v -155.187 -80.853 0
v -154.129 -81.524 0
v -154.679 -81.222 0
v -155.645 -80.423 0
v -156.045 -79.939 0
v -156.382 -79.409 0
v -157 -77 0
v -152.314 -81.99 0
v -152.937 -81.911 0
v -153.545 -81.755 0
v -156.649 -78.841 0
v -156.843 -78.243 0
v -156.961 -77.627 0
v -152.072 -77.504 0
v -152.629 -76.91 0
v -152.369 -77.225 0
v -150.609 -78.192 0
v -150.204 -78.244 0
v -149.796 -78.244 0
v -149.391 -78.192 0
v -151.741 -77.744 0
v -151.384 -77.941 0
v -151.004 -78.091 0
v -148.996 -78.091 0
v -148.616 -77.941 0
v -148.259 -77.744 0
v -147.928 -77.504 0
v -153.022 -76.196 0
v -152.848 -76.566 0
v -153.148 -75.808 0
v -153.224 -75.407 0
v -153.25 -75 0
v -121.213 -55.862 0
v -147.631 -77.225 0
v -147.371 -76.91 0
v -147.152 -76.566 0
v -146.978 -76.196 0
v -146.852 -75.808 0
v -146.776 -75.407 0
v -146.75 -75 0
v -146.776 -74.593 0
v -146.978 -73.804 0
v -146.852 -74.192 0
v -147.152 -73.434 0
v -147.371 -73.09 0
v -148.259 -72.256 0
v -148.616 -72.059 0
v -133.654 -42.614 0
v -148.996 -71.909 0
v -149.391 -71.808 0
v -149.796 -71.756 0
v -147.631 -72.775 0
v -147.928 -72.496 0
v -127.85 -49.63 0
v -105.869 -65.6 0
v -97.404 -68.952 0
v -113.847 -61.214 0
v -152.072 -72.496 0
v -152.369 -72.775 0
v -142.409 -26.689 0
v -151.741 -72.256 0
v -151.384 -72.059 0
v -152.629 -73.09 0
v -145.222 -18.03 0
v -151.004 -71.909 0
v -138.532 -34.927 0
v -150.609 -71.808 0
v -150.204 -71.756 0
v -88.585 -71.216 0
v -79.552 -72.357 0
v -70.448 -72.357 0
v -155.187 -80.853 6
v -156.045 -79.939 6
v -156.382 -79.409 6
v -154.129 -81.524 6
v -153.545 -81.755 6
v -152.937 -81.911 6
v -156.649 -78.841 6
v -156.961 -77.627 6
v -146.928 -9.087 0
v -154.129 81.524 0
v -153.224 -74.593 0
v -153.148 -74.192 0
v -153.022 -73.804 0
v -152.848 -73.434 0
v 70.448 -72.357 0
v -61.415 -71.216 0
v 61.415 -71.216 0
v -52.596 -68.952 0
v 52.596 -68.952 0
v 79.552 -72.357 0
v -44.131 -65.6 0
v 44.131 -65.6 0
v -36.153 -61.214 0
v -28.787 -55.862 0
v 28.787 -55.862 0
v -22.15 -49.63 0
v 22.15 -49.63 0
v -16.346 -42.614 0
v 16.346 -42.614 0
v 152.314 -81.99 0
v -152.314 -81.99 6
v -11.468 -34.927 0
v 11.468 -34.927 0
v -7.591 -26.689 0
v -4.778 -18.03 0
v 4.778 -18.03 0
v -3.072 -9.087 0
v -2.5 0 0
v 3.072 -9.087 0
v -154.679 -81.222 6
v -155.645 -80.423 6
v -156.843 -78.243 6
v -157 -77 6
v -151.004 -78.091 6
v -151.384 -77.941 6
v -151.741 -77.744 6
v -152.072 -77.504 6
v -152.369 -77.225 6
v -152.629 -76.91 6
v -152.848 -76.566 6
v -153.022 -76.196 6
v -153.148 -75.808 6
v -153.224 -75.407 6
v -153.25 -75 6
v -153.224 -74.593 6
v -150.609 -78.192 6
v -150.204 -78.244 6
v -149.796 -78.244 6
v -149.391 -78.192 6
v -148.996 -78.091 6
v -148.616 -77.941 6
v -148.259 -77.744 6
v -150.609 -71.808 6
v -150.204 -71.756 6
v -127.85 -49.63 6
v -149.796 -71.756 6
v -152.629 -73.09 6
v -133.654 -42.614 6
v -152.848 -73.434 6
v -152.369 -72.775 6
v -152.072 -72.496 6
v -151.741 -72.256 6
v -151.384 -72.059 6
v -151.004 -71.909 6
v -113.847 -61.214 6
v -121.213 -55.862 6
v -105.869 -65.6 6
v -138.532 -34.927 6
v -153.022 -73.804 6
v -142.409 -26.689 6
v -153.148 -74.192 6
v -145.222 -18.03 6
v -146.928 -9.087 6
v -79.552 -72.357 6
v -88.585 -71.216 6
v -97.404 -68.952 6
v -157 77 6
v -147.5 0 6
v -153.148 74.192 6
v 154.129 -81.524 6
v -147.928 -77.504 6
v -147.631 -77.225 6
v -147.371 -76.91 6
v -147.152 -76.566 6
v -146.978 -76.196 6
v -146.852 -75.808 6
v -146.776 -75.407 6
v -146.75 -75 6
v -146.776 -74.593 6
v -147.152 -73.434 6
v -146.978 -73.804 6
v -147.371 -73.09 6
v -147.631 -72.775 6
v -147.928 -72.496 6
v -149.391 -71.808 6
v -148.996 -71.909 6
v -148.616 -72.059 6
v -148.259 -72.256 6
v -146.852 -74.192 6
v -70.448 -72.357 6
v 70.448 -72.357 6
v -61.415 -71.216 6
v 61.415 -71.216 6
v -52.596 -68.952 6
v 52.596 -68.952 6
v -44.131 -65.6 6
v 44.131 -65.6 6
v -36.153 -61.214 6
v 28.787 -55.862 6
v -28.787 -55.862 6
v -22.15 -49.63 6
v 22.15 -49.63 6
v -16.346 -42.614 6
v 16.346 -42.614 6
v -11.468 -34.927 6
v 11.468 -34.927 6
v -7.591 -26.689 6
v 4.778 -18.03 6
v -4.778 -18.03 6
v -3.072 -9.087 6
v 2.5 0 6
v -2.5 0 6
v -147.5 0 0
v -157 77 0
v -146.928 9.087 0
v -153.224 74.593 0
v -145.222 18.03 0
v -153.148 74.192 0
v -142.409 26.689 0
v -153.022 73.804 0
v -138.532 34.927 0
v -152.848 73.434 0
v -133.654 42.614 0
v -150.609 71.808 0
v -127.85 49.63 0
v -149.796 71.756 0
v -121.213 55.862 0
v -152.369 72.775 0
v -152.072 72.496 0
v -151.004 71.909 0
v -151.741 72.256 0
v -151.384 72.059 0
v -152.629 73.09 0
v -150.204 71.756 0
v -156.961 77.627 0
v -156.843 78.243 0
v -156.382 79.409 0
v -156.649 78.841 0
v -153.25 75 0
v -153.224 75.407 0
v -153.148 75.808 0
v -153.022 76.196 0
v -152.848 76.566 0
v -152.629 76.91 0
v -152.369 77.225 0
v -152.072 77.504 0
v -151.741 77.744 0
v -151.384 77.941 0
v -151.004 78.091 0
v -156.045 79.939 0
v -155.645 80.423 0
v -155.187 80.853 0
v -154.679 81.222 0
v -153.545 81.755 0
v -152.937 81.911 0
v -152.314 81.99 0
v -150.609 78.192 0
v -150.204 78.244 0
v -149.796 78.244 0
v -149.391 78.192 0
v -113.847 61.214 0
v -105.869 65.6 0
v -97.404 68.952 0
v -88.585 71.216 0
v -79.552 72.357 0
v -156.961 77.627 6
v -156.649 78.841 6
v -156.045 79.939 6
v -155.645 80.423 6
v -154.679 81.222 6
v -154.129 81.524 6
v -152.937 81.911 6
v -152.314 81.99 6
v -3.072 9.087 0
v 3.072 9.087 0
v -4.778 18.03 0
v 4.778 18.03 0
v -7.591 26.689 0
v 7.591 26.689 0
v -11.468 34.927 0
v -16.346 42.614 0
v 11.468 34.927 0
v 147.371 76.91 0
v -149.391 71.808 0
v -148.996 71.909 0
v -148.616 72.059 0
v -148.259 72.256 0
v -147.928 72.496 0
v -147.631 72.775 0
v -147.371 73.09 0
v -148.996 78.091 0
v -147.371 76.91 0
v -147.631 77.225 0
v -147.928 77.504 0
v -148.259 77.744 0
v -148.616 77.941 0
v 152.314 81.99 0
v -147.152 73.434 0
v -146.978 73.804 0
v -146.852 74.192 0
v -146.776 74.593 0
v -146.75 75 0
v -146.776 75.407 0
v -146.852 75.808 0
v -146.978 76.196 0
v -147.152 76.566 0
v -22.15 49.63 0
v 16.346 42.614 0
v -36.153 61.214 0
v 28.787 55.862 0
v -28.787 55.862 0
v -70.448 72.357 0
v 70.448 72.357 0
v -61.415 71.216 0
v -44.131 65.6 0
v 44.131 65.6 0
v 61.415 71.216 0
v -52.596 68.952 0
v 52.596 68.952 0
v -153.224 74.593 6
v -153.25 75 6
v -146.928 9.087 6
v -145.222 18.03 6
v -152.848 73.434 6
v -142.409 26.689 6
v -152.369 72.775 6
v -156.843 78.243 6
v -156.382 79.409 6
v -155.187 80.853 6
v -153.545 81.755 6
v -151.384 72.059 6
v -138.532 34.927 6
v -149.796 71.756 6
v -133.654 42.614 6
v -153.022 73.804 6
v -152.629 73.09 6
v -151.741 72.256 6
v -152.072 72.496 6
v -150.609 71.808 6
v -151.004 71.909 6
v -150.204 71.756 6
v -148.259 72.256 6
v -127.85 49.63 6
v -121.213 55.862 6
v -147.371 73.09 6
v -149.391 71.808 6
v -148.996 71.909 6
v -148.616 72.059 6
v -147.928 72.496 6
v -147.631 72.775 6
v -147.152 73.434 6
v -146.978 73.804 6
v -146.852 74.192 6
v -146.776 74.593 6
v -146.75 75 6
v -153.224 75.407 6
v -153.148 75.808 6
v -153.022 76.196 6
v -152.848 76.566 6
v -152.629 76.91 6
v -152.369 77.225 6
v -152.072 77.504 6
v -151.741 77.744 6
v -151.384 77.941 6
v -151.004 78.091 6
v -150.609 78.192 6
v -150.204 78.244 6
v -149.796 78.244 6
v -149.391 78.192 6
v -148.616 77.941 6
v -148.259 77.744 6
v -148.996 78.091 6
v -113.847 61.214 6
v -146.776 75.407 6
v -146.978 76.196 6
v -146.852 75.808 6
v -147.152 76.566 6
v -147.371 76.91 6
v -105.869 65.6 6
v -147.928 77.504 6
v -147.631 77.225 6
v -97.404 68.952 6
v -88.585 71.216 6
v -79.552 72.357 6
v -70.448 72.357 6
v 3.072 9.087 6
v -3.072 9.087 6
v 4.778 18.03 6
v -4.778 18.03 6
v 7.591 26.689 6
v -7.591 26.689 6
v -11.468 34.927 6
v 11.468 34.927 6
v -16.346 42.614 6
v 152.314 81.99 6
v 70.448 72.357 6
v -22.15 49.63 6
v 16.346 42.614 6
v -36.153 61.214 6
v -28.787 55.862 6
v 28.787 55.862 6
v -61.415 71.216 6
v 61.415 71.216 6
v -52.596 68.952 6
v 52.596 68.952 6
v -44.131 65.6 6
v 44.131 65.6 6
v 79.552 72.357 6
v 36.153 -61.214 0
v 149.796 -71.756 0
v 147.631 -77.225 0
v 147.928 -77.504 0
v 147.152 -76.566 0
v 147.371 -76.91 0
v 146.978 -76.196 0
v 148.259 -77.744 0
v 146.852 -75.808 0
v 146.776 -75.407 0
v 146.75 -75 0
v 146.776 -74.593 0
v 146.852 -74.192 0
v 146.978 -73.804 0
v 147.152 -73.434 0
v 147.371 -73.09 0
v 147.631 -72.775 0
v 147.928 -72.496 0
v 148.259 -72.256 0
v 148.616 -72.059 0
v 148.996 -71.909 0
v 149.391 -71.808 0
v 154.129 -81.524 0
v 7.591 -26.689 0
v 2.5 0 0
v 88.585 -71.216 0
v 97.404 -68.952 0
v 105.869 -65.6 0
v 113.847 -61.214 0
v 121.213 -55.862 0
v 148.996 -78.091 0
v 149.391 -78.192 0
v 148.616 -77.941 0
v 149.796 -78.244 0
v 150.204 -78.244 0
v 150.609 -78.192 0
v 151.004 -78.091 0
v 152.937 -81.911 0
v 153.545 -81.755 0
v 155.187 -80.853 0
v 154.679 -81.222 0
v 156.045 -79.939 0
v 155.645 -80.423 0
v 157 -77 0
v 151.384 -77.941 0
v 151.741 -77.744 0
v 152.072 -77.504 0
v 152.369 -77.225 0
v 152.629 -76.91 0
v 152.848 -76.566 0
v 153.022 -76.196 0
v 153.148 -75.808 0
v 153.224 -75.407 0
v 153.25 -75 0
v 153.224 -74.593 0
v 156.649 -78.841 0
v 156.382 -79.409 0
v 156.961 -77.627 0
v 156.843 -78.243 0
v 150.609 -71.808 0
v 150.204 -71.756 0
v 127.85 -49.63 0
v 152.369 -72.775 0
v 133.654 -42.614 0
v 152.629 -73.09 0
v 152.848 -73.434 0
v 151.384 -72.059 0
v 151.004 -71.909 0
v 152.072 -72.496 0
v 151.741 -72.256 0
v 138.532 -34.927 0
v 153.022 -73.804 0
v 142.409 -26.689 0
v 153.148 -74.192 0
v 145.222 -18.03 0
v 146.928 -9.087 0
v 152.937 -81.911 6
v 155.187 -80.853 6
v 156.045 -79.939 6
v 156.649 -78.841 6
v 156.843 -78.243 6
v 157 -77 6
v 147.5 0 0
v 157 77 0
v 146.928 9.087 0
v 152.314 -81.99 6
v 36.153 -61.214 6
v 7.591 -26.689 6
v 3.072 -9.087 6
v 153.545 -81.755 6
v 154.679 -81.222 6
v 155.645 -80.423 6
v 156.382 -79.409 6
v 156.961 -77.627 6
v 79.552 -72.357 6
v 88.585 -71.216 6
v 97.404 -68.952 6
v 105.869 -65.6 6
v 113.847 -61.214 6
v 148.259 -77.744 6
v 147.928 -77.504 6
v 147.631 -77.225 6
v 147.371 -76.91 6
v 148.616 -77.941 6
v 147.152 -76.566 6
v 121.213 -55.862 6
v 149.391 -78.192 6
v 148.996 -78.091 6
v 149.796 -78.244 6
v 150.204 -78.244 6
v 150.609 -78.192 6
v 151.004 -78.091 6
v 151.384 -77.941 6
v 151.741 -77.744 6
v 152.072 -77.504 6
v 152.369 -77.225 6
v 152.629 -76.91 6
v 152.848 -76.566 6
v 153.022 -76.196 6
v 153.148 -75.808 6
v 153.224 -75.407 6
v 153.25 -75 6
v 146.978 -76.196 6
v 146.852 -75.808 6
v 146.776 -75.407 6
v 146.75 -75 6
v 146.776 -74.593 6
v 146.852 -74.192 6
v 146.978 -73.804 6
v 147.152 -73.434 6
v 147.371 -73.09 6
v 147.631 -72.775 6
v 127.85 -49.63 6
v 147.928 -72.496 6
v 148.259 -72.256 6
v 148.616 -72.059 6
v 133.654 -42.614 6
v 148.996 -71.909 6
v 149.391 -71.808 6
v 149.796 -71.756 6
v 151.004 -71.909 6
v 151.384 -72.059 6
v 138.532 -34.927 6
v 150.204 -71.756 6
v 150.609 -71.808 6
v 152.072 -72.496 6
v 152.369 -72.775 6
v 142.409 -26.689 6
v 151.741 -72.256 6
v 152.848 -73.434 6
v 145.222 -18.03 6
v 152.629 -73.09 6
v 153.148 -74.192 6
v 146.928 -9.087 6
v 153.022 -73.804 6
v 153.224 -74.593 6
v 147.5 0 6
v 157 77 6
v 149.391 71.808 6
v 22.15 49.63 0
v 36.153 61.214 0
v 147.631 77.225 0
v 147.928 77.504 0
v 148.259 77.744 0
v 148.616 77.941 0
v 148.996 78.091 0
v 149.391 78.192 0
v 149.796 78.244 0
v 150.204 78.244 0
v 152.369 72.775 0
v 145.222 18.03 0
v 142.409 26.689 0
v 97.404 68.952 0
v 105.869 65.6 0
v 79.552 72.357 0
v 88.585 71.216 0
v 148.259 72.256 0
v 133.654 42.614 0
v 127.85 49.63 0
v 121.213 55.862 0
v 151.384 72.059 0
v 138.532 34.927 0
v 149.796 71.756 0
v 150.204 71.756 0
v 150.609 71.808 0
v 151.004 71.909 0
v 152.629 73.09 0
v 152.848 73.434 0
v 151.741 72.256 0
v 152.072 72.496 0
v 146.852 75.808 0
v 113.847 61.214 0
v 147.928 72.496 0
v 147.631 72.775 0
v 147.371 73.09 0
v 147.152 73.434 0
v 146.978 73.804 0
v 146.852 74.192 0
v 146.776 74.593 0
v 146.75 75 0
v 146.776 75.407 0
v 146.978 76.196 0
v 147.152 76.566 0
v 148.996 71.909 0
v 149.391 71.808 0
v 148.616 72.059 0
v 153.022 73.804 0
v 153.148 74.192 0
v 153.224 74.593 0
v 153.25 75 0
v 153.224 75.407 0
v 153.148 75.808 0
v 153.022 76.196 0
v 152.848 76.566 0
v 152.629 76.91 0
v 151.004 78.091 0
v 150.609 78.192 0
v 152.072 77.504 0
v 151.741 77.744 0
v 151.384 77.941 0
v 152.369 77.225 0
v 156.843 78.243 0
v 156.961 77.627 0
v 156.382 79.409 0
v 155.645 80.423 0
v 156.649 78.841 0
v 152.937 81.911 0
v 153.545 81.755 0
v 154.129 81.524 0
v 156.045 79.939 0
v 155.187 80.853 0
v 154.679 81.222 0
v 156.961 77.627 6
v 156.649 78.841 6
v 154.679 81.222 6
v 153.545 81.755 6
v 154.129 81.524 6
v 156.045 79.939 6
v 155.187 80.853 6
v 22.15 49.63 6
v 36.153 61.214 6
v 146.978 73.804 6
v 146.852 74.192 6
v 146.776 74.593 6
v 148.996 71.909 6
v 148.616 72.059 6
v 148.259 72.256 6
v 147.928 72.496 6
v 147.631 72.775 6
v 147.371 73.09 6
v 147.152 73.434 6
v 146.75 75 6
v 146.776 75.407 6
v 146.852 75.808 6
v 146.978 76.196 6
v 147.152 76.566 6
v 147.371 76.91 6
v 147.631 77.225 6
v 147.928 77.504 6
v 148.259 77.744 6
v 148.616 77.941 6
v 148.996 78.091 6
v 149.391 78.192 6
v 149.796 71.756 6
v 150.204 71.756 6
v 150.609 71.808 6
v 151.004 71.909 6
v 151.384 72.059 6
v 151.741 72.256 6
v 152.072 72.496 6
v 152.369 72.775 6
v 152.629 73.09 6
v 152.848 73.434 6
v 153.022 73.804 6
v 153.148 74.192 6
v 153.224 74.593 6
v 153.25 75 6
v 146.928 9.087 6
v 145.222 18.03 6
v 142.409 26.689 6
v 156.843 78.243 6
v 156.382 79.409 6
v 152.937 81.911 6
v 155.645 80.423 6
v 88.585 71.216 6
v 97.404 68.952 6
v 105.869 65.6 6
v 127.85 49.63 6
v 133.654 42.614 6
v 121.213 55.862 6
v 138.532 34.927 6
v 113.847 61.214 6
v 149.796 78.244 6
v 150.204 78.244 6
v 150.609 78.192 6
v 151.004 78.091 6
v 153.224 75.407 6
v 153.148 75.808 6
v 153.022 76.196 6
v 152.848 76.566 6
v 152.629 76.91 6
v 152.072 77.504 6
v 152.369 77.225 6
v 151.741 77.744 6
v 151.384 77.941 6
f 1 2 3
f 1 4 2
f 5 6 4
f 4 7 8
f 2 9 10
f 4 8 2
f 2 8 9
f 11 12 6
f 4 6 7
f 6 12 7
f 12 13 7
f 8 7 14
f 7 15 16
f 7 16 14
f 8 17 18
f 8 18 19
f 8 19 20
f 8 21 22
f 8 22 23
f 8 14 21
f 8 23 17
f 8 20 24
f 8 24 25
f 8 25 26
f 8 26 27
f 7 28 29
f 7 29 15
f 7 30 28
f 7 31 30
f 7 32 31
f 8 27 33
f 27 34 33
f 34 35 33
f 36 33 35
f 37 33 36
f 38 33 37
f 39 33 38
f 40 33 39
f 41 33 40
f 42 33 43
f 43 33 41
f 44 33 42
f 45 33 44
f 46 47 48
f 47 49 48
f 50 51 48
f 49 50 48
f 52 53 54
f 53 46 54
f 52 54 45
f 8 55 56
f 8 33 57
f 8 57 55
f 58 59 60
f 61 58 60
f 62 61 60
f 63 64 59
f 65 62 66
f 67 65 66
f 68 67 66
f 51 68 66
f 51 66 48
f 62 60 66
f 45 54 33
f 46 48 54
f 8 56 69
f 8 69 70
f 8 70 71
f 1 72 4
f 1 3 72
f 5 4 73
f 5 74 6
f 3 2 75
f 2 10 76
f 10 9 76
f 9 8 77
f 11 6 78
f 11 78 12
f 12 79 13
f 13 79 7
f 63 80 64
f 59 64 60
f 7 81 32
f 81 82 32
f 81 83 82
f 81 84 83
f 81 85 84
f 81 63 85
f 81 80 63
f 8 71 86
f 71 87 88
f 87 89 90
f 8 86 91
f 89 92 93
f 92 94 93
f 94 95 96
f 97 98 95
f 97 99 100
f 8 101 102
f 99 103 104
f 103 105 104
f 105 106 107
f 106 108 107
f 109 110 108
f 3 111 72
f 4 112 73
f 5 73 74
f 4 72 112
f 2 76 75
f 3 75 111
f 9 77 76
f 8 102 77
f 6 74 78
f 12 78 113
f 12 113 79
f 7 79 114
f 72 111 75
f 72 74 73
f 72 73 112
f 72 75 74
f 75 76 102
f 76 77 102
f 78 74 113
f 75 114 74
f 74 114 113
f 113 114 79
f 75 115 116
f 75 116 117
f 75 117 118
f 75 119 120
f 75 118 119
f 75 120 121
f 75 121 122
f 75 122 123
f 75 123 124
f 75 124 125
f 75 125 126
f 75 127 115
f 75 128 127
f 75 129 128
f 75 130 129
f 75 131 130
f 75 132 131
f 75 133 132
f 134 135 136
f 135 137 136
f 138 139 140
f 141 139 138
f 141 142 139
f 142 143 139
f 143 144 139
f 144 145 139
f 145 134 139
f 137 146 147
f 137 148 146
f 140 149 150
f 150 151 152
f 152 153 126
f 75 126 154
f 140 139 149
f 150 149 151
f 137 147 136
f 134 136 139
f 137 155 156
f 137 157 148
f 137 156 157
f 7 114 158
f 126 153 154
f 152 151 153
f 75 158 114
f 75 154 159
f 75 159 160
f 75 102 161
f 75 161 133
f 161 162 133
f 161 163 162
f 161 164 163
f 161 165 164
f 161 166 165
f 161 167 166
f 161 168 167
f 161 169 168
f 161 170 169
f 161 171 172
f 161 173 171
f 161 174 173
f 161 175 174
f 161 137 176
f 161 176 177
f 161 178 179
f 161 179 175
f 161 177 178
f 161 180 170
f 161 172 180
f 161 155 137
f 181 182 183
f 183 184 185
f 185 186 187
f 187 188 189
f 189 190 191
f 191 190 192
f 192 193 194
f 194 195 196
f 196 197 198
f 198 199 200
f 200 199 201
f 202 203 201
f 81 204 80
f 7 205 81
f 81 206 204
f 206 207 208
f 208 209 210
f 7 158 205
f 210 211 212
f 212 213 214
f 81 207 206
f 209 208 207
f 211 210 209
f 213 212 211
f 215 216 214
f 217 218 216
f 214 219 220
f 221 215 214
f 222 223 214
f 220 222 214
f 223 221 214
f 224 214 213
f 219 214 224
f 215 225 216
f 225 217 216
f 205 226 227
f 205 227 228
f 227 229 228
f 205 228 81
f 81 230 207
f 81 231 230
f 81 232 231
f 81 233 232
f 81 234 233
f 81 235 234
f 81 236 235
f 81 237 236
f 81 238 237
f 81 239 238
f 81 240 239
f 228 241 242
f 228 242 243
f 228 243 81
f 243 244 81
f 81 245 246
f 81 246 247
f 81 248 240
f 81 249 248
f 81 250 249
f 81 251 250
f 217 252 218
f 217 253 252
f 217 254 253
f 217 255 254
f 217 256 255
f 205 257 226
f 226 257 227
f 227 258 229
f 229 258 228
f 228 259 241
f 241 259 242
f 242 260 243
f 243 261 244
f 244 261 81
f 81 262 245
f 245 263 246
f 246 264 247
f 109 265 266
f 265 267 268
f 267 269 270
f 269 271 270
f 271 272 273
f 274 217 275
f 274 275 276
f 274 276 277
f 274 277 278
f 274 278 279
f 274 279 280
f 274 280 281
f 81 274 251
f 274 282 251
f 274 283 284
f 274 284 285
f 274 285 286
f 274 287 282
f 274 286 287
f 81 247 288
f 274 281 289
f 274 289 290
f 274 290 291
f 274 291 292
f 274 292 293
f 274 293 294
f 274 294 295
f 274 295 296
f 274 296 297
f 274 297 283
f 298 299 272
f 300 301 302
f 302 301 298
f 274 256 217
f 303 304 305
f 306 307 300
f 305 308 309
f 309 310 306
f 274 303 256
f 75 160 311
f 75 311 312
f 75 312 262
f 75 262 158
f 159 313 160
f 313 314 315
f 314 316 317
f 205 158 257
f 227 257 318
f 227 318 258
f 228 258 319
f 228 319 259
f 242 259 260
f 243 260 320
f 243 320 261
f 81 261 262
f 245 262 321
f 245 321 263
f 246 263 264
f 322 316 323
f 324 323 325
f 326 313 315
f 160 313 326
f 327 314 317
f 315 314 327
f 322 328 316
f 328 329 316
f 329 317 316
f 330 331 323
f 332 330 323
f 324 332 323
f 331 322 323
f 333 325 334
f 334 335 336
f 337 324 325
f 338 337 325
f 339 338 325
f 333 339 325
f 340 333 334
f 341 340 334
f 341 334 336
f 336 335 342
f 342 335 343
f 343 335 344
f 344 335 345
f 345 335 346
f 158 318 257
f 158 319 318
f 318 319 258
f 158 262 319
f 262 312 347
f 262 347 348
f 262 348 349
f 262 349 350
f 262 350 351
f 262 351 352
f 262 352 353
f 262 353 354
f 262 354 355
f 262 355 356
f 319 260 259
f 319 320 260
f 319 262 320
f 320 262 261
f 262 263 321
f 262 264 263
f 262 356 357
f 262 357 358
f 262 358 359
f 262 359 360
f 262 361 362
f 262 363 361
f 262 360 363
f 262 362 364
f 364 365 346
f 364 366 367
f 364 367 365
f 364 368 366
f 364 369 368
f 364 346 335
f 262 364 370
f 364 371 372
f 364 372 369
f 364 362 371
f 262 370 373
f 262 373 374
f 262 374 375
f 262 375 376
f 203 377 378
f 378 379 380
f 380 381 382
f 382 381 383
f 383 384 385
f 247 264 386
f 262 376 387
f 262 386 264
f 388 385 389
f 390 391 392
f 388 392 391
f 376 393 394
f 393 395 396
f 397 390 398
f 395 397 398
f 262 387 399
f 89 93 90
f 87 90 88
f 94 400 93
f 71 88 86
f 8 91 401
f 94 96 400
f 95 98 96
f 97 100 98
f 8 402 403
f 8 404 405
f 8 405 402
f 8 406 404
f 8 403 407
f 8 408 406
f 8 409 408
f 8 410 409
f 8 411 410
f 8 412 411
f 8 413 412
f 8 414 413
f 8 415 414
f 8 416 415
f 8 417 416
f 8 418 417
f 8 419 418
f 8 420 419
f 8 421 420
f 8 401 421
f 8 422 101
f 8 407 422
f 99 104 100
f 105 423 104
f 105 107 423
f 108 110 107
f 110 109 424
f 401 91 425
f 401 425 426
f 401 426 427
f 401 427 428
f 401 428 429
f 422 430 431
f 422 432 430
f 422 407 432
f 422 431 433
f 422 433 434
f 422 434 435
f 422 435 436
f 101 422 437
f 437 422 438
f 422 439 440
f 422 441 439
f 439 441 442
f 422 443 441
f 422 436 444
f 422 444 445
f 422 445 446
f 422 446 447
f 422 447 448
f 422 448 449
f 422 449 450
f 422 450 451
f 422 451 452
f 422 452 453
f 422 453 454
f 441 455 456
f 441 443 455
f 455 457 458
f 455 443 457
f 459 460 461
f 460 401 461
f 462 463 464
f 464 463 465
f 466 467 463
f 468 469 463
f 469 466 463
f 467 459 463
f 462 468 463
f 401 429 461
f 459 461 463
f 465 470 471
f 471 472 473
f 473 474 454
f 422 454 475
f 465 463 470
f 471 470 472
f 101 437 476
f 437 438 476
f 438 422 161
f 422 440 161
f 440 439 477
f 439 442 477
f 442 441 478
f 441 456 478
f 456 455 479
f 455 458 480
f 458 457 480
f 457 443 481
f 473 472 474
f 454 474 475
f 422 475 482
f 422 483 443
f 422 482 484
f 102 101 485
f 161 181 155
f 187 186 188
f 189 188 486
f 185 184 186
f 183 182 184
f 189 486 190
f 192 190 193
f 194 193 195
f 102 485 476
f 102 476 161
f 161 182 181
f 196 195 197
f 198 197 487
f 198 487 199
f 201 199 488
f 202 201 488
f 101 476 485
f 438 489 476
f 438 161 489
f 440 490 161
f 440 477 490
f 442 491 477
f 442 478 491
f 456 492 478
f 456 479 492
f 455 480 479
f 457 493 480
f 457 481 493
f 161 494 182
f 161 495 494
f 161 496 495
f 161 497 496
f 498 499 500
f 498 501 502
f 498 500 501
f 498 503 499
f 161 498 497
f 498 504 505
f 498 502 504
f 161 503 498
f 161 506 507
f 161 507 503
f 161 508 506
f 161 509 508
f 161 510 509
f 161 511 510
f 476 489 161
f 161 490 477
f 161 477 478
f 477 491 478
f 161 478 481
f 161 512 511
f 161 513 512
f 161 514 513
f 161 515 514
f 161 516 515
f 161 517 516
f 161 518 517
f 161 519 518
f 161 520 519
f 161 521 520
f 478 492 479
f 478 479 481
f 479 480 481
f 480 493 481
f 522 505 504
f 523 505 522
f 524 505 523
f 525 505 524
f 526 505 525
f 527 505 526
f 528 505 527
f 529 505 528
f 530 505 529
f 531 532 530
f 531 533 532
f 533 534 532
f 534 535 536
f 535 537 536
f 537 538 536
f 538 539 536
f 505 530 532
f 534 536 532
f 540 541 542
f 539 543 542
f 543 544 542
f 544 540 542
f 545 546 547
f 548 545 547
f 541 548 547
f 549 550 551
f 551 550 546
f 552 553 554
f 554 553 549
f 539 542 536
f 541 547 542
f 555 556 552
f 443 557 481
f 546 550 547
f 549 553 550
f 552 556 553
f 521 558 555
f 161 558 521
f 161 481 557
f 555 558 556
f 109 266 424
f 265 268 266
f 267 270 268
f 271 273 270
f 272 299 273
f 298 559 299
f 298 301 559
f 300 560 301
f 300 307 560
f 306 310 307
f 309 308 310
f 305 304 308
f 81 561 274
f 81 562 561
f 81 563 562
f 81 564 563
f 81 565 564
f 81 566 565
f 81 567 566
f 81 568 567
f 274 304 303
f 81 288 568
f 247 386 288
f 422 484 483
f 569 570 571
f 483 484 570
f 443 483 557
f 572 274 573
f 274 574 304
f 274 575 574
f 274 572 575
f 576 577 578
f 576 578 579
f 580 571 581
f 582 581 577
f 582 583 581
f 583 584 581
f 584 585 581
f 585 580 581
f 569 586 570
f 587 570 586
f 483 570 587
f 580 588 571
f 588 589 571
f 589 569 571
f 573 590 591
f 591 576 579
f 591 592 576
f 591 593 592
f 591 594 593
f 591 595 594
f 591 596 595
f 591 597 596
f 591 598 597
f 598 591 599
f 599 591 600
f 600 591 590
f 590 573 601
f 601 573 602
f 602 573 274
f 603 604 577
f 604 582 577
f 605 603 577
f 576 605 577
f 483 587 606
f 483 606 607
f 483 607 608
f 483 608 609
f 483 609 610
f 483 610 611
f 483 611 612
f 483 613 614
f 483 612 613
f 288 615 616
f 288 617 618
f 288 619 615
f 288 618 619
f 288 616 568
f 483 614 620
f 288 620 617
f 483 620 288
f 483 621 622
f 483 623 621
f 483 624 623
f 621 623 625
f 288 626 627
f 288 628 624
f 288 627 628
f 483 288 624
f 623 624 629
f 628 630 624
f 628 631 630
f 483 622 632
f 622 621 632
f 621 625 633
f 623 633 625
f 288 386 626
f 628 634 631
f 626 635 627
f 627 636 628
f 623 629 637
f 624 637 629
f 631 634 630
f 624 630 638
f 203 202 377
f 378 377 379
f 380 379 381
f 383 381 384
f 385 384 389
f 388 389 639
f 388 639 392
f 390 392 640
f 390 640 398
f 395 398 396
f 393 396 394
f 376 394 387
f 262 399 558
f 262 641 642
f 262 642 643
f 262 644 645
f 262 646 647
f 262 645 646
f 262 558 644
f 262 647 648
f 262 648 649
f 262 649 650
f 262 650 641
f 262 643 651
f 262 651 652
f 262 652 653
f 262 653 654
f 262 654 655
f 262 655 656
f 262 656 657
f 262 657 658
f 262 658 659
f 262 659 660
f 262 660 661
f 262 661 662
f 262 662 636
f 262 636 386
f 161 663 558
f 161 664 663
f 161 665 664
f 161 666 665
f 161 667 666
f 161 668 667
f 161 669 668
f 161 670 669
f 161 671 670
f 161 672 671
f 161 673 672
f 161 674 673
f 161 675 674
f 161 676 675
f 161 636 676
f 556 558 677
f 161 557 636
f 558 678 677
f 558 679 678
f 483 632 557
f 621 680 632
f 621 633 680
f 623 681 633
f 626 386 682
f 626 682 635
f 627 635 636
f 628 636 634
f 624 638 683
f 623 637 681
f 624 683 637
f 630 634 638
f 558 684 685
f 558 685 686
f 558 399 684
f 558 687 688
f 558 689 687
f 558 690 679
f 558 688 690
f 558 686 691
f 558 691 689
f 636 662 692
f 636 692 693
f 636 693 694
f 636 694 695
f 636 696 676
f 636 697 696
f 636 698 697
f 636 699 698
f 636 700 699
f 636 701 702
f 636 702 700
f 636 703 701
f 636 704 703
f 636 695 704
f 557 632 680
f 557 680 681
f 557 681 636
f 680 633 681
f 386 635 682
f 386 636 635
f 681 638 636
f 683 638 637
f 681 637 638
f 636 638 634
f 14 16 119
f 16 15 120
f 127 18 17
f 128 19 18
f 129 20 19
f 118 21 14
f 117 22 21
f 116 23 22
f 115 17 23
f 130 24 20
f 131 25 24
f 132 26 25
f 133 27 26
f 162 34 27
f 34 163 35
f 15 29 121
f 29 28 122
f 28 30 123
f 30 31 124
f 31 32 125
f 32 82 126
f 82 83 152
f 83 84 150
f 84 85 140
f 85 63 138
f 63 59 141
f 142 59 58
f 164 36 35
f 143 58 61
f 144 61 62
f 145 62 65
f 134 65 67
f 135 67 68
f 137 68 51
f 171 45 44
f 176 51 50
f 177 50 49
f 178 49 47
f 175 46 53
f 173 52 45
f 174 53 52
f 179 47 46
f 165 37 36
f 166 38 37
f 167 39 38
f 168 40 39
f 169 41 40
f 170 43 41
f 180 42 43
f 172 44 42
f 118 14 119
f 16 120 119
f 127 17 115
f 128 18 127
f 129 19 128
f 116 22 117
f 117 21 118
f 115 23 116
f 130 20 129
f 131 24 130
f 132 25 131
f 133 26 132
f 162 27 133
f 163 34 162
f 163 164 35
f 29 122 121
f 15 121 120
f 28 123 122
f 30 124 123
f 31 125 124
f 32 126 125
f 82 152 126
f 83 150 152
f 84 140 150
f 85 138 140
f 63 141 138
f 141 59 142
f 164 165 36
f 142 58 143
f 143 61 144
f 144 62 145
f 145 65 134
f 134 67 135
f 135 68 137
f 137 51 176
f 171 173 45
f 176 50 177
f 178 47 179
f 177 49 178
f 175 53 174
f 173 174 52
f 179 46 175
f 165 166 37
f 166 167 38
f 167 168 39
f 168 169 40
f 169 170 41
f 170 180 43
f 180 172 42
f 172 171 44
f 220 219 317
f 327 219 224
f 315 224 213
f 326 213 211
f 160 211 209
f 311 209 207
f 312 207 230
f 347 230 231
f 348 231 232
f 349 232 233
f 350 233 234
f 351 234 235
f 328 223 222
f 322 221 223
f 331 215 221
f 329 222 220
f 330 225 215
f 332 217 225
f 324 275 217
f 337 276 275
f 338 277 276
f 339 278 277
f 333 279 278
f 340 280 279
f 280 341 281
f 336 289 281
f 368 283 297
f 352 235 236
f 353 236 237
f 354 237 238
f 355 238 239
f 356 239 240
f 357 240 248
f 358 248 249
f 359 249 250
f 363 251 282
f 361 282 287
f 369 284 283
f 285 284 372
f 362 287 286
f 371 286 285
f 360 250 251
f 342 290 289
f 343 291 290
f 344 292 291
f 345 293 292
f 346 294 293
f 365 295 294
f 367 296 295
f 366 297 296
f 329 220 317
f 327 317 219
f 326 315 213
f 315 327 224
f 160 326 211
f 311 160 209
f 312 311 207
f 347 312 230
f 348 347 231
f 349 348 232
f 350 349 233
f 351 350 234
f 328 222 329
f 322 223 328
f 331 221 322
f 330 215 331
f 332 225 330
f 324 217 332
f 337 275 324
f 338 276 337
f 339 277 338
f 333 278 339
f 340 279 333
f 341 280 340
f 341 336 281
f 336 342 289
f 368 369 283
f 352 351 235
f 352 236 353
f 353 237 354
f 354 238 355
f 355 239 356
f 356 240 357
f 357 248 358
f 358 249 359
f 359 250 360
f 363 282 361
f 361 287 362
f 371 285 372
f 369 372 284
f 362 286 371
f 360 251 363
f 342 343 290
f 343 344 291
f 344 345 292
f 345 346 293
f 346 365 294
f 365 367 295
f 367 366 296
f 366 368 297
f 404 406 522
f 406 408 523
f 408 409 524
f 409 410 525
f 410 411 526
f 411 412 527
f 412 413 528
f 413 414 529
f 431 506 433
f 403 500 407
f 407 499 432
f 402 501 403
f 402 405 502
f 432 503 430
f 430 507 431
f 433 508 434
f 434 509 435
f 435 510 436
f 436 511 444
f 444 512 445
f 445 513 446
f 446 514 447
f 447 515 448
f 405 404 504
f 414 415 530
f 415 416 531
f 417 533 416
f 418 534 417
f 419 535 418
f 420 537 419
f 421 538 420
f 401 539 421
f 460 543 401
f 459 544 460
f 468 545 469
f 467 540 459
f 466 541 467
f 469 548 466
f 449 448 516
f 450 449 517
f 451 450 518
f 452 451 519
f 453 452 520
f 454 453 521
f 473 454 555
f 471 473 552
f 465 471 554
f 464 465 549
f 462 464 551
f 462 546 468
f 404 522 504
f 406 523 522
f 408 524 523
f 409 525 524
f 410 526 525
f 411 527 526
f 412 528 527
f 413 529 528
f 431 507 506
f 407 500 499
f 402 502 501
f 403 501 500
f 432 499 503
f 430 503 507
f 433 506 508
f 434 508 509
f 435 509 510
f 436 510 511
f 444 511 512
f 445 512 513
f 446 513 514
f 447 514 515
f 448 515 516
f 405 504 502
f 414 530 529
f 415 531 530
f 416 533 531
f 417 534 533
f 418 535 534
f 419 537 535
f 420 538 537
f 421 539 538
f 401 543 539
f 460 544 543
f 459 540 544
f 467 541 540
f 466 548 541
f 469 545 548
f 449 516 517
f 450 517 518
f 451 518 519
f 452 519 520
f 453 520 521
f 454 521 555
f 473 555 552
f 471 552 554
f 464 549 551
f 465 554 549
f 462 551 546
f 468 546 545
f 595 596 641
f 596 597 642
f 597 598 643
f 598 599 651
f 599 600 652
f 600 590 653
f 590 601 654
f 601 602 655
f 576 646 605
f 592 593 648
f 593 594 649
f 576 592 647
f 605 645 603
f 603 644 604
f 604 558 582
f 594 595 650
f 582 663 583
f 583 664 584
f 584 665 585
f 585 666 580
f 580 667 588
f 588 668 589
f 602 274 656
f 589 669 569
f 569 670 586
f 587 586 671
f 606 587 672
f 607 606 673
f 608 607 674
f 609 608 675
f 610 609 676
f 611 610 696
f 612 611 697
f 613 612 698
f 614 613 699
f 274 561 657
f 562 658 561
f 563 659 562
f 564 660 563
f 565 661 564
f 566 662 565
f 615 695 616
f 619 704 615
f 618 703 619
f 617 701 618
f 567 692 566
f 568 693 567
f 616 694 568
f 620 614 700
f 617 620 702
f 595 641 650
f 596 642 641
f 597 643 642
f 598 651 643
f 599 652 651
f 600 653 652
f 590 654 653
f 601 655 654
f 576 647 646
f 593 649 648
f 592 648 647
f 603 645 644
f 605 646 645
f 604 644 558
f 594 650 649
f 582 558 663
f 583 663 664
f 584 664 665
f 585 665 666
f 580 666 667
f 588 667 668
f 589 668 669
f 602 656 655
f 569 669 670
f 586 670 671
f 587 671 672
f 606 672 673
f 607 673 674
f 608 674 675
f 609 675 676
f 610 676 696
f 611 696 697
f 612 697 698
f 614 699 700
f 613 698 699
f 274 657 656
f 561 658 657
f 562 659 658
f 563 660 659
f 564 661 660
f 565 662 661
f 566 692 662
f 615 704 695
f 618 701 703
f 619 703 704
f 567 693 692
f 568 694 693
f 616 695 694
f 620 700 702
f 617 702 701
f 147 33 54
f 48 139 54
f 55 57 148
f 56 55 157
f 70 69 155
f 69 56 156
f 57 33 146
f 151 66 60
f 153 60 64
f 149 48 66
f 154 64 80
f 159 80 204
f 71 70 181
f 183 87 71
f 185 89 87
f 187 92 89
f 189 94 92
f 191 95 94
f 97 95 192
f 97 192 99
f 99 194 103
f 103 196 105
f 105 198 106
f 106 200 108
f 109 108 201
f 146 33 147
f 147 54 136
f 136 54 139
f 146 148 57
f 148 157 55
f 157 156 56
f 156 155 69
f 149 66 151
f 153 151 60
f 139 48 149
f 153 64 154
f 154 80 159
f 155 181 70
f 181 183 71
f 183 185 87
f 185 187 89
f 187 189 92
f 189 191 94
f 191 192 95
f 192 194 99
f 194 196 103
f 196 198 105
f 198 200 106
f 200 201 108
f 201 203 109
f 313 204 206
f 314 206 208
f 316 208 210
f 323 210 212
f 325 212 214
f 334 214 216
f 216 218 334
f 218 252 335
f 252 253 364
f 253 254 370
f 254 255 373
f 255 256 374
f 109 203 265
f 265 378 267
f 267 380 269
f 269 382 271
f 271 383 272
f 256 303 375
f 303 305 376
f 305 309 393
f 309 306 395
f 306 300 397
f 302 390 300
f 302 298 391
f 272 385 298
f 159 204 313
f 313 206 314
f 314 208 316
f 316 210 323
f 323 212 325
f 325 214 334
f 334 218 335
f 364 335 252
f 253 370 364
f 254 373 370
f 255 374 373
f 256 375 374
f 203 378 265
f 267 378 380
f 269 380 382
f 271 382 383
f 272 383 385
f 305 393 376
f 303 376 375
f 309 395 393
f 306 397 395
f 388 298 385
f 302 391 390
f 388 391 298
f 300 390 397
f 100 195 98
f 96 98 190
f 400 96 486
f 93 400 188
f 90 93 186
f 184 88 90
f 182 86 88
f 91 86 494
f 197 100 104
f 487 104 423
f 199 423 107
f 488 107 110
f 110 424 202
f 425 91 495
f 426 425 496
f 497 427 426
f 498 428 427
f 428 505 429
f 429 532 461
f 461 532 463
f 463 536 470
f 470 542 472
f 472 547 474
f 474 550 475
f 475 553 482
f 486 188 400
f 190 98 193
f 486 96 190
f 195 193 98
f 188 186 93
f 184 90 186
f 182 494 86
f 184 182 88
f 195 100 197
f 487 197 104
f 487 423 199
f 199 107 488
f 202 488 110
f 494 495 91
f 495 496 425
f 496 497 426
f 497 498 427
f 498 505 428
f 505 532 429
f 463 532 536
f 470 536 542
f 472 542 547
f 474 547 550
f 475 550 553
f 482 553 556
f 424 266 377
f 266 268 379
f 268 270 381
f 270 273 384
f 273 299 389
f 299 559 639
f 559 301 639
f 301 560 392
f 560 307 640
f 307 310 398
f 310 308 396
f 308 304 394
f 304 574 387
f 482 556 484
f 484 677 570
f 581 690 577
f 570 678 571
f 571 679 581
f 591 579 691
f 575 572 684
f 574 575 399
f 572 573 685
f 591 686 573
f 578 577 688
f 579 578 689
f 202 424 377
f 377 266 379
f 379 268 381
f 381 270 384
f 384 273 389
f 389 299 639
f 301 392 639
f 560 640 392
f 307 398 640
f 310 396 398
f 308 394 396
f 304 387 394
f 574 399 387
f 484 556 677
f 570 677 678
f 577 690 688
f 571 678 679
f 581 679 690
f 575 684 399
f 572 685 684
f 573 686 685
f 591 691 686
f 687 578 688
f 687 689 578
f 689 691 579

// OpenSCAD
$fn = 50;

difference() {
	union() {
		hull() {
			translate(v = [-152.0, 77.0, 0]) {
				cylinder(h = 6, r = 5);
			}
			translate(v = [152.0, 77.0, 0]) {
				cylinder(h = 6, r = 5);
			}
			translate(v = [-152.0, -77.0, 0]) {
				cylinder(h = 6, r = 5);
			}
			translate(v = [152.0, -77.0, 0]) {
				cylinder(h = 6, r = 5);
			}
		}
	}
	union() {
		translate(v = [-150.0, -75.0, -100.0]) {
			cylinder(h = 200, r = 3.25);
		}
		translate(v = [-150.0, 75.0, -100.0]) {
			cylinder(h = 200, r = 3.25);
		}
		translate(v = [150.0, -75.0, -100.0]) {
			cylinder(h = 200, r = 3.25);
		}
		translate(v = [150.0, 75.0, -100.0]) {
			cylinder(h = 200, r = 3.25);
		}
		translate(v = [-150.0, -75.0, -100.0]) {
			cylinder(h = 200, r = 1.8);
		}
		translate(v = [-150.0, 75.0, -100.0]) {
			cylinder(h = 200, r = 1.8);
		}
		translate(v = [150.0, -75.0, -100.0]) {
			cylinder(h = 200, r = 1.8);
		}
		translate(v = [150.0, 75.0, -100.0]) {
			cylinder(h = 200, r = 1.8);
		}
		translate(v = [-75.0, 0, 0.0]) {
			cylinder(h = 6, r = 72.5);
		}
		translate(v = [75.0, 0, 0.0]) {
			cylinder(h = 6, r = 72.5);
		}
	}
}
